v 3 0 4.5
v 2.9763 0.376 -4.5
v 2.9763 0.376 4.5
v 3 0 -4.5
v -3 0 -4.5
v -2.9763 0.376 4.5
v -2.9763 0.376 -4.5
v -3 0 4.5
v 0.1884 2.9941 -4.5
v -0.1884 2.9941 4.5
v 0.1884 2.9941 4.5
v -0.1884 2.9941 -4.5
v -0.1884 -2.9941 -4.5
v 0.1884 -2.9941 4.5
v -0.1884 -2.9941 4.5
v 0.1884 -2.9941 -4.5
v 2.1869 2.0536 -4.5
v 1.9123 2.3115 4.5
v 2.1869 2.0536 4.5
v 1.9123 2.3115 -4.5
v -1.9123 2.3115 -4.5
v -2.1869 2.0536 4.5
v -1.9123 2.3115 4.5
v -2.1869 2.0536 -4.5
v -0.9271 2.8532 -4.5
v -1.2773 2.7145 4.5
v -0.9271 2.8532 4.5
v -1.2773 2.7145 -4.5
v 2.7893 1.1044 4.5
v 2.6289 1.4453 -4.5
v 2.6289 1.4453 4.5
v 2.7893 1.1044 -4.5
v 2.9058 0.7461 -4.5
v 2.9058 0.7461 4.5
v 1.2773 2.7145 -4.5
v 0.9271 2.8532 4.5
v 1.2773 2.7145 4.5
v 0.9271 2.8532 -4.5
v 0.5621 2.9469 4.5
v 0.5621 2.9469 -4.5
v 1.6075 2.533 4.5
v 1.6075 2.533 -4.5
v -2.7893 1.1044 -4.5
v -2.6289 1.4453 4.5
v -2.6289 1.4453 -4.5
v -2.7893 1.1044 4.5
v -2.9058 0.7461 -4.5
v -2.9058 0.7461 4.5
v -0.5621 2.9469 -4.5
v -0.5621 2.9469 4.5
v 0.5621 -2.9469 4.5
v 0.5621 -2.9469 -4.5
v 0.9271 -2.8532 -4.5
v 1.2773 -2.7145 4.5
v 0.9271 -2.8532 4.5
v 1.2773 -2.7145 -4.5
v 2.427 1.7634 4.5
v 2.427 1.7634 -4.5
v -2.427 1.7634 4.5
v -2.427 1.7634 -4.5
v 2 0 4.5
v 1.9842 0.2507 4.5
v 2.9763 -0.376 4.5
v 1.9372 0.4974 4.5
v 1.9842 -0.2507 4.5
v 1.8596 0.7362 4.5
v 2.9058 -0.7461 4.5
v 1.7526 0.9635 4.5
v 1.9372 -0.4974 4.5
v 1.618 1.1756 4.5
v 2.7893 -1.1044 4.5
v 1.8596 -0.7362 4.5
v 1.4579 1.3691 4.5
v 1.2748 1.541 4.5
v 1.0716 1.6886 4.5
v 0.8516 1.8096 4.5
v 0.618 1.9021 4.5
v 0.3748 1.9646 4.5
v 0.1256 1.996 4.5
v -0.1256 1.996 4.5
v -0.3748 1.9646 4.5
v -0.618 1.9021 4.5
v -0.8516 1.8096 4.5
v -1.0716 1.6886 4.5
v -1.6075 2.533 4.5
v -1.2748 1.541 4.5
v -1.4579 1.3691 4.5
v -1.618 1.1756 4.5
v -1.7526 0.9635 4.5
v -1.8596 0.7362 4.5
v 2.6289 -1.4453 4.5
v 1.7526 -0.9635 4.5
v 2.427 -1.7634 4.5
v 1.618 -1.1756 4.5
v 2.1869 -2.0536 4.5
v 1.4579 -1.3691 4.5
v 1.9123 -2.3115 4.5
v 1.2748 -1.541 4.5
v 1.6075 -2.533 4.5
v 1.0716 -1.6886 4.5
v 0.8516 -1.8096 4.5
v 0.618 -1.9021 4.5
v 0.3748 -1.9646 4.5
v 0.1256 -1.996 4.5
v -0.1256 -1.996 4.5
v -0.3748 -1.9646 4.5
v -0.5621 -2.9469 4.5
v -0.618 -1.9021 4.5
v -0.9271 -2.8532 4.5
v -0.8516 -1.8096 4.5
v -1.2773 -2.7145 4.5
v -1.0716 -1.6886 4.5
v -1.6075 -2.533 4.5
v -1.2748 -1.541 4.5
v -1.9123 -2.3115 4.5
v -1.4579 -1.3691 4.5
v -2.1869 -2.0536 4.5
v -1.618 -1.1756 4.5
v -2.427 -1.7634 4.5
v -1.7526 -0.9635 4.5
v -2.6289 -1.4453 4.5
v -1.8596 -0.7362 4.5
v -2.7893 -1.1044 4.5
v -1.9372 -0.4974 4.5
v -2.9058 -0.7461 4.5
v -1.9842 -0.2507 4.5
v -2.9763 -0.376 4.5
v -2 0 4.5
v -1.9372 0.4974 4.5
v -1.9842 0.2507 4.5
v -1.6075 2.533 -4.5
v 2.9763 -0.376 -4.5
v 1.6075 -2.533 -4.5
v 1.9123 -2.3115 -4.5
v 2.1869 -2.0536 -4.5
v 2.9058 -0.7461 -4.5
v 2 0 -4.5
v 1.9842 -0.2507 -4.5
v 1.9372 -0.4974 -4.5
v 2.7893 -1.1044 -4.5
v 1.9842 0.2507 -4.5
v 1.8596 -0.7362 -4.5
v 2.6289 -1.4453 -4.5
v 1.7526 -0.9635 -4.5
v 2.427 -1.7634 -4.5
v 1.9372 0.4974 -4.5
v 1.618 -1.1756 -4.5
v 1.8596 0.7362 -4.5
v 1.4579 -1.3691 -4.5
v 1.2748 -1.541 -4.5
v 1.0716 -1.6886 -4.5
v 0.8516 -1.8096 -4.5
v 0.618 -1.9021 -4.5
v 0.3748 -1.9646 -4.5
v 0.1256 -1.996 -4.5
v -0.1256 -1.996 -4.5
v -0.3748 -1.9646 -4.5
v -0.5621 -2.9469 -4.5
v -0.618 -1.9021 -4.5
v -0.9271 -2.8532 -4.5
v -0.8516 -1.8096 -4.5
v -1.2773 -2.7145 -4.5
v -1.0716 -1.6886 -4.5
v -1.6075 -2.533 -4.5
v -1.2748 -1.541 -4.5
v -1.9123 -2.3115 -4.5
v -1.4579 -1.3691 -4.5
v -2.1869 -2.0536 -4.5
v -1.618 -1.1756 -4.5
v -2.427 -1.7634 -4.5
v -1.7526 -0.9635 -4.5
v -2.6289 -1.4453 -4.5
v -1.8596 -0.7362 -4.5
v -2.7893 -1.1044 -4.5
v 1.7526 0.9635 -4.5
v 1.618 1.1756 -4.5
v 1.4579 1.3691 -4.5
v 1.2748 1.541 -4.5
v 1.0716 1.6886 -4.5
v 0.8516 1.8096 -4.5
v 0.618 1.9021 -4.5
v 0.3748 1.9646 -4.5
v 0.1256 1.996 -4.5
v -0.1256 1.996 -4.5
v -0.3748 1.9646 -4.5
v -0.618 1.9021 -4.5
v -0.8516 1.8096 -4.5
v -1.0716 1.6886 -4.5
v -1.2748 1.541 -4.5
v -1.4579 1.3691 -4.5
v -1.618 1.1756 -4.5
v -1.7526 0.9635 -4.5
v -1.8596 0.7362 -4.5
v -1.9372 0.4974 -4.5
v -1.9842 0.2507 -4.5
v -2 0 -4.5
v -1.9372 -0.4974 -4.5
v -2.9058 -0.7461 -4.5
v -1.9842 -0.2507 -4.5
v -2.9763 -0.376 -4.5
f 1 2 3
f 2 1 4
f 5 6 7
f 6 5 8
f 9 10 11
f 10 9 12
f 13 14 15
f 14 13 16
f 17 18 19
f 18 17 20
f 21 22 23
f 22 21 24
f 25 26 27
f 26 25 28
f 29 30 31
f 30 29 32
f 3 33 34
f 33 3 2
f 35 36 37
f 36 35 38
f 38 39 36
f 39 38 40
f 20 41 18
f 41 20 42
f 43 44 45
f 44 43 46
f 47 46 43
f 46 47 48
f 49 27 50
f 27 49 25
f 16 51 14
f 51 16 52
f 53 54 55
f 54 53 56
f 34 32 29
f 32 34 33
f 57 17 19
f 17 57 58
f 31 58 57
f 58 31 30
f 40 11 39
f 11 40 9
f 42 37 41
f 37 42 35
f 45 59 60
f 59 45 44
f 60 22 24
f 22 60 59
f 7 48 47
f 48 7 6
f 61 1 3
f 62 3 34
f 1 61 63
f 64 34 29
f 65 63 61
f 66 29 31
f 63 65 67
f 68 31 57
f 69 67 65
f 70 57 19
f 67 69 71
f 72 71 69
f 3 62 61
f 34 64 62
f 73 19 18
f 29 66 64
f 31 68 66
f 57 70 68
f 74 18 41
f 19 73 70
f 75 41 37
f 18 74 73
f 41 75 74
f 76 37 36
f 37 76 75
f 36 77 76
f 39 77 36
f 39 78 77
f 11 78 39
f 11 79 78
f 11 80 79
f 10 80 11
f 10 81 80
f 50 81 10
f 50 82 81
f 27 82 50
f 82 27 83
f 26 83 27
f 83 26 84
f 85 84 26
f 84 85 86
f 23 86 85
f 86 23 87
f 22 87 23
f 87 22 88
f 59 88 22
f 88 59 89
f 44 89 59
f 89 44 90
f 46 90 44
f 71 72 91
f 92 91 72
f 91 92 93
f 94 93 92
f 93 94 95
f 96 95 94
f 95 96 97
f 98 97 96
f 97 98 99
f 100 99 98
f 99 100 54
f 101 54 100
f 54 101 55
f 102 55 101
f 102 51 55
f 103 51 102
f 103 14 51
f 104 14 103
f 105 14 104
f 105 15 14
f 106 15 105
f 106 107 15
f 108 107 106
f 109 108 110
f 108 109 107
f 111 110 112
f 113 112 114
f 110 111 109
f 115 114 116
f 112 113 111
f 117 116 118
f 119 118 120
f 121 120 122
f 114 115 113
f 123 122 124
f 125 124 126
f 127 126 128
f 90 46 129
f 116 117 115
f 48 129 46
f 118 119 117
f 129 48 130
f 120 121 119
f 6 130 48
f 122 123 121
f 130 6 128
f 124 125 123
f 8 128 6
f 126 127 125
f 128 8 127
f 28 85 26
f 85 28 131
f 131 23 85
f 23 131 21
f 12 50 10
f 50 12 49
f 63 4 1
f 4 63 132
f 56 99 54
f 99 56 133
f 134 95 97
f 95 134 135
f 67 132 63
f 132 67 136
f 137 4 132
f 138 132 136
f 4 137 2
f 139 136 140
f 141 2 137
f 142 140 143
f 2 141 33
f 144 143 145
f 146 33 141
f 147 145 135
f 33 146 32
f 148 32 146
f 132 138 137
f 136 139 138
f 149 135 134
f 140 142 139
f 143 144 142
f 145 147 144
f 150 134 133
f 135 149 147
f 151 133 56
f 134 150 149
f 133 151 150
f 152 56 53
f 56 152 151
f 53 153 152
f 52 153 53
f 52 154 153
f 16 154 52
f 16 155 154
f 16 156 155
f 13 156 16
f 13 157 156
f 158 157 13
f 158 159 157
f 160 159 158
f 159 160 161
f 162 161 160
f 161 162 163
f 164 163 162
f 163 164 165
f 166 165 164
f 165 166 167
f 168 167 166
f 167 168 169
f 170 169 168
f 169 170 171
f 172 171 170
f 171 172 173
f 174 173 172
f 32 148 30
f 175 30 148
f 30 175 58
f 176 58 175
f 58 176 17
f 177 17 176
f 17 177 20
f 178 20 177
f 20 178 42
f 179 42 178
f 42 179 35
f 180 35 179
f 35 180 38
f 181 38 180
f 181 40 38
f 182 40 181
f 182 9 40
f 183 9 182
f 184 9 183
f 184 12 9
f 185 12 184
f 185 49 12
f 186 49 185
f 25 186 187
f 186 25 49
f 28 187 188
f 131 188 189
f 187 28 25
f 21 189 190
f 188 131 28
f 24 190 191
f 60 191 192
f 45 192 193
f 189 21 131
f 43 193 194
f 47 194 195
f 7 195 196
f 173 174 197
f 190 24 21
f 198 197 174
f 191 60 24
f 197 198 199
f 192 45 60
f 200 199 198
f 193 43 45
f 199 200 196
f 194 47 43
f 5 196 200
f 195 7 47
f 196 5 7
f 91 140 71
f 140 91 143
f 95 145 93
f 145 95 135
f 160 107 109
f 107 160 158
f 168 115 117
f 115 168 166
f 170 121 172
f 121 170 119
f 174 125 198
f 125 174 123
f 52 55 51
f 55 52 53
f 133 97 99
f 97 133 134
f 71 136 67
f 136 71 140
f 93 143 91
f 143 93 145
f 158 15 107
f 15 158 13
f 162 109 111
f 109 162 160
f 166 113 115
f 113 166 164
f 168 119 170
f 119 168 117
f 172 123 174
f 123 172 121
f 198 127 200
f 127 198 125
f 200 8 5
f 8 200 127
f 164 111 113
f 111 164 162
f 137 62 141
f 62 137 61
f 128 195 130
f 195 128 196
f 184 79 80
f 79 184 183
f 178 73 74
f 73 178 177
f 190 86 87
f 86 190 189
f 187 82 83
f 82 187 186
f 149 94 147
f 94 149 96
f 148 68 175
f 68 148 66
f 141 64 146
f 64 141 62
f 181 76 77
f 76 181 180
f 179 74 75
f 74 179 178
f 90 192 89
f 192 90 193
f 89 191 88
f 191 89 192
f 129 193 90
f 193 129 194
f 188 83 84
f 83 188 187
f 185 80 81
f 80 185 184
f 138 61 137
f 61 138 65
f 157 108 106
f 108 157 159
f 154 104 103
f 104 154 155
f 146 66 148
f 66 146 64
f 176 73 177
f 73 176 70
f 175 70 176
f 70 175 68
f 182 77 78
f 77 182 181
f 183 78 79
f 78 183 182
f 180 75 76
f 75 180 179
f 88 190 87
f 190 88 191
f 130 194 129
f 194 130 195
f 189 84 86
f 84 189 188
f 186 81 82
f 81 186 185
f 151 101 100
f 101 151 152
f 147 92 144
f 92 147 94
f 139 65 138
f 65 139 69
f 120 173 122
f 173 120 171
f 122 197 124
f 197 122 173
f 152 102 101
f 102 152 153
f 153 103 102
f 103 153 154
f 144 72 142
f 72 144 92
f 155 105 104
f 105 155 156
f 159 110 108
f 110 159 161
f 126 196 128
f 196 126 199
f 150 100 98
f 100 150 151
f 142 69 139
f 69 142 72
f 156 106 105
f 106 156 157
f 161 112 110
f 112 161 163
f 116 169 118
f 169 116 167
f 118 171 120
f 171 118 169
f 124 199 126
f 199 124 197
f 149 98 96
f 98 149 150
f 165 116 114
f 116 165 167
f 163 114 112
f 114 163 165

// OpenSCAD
$fn = 50;


difference() {
	union() {
		translate(v = [0, 0, -4.5000000000]) {
			cylinder(h = 9, r = 3.0000000000);
		}
	}
	union() {
		translate(v = [0, 0, -100.0000000000]) {
			cylinder(h = 200, r = 2.0000000000);
		}
	}
}
